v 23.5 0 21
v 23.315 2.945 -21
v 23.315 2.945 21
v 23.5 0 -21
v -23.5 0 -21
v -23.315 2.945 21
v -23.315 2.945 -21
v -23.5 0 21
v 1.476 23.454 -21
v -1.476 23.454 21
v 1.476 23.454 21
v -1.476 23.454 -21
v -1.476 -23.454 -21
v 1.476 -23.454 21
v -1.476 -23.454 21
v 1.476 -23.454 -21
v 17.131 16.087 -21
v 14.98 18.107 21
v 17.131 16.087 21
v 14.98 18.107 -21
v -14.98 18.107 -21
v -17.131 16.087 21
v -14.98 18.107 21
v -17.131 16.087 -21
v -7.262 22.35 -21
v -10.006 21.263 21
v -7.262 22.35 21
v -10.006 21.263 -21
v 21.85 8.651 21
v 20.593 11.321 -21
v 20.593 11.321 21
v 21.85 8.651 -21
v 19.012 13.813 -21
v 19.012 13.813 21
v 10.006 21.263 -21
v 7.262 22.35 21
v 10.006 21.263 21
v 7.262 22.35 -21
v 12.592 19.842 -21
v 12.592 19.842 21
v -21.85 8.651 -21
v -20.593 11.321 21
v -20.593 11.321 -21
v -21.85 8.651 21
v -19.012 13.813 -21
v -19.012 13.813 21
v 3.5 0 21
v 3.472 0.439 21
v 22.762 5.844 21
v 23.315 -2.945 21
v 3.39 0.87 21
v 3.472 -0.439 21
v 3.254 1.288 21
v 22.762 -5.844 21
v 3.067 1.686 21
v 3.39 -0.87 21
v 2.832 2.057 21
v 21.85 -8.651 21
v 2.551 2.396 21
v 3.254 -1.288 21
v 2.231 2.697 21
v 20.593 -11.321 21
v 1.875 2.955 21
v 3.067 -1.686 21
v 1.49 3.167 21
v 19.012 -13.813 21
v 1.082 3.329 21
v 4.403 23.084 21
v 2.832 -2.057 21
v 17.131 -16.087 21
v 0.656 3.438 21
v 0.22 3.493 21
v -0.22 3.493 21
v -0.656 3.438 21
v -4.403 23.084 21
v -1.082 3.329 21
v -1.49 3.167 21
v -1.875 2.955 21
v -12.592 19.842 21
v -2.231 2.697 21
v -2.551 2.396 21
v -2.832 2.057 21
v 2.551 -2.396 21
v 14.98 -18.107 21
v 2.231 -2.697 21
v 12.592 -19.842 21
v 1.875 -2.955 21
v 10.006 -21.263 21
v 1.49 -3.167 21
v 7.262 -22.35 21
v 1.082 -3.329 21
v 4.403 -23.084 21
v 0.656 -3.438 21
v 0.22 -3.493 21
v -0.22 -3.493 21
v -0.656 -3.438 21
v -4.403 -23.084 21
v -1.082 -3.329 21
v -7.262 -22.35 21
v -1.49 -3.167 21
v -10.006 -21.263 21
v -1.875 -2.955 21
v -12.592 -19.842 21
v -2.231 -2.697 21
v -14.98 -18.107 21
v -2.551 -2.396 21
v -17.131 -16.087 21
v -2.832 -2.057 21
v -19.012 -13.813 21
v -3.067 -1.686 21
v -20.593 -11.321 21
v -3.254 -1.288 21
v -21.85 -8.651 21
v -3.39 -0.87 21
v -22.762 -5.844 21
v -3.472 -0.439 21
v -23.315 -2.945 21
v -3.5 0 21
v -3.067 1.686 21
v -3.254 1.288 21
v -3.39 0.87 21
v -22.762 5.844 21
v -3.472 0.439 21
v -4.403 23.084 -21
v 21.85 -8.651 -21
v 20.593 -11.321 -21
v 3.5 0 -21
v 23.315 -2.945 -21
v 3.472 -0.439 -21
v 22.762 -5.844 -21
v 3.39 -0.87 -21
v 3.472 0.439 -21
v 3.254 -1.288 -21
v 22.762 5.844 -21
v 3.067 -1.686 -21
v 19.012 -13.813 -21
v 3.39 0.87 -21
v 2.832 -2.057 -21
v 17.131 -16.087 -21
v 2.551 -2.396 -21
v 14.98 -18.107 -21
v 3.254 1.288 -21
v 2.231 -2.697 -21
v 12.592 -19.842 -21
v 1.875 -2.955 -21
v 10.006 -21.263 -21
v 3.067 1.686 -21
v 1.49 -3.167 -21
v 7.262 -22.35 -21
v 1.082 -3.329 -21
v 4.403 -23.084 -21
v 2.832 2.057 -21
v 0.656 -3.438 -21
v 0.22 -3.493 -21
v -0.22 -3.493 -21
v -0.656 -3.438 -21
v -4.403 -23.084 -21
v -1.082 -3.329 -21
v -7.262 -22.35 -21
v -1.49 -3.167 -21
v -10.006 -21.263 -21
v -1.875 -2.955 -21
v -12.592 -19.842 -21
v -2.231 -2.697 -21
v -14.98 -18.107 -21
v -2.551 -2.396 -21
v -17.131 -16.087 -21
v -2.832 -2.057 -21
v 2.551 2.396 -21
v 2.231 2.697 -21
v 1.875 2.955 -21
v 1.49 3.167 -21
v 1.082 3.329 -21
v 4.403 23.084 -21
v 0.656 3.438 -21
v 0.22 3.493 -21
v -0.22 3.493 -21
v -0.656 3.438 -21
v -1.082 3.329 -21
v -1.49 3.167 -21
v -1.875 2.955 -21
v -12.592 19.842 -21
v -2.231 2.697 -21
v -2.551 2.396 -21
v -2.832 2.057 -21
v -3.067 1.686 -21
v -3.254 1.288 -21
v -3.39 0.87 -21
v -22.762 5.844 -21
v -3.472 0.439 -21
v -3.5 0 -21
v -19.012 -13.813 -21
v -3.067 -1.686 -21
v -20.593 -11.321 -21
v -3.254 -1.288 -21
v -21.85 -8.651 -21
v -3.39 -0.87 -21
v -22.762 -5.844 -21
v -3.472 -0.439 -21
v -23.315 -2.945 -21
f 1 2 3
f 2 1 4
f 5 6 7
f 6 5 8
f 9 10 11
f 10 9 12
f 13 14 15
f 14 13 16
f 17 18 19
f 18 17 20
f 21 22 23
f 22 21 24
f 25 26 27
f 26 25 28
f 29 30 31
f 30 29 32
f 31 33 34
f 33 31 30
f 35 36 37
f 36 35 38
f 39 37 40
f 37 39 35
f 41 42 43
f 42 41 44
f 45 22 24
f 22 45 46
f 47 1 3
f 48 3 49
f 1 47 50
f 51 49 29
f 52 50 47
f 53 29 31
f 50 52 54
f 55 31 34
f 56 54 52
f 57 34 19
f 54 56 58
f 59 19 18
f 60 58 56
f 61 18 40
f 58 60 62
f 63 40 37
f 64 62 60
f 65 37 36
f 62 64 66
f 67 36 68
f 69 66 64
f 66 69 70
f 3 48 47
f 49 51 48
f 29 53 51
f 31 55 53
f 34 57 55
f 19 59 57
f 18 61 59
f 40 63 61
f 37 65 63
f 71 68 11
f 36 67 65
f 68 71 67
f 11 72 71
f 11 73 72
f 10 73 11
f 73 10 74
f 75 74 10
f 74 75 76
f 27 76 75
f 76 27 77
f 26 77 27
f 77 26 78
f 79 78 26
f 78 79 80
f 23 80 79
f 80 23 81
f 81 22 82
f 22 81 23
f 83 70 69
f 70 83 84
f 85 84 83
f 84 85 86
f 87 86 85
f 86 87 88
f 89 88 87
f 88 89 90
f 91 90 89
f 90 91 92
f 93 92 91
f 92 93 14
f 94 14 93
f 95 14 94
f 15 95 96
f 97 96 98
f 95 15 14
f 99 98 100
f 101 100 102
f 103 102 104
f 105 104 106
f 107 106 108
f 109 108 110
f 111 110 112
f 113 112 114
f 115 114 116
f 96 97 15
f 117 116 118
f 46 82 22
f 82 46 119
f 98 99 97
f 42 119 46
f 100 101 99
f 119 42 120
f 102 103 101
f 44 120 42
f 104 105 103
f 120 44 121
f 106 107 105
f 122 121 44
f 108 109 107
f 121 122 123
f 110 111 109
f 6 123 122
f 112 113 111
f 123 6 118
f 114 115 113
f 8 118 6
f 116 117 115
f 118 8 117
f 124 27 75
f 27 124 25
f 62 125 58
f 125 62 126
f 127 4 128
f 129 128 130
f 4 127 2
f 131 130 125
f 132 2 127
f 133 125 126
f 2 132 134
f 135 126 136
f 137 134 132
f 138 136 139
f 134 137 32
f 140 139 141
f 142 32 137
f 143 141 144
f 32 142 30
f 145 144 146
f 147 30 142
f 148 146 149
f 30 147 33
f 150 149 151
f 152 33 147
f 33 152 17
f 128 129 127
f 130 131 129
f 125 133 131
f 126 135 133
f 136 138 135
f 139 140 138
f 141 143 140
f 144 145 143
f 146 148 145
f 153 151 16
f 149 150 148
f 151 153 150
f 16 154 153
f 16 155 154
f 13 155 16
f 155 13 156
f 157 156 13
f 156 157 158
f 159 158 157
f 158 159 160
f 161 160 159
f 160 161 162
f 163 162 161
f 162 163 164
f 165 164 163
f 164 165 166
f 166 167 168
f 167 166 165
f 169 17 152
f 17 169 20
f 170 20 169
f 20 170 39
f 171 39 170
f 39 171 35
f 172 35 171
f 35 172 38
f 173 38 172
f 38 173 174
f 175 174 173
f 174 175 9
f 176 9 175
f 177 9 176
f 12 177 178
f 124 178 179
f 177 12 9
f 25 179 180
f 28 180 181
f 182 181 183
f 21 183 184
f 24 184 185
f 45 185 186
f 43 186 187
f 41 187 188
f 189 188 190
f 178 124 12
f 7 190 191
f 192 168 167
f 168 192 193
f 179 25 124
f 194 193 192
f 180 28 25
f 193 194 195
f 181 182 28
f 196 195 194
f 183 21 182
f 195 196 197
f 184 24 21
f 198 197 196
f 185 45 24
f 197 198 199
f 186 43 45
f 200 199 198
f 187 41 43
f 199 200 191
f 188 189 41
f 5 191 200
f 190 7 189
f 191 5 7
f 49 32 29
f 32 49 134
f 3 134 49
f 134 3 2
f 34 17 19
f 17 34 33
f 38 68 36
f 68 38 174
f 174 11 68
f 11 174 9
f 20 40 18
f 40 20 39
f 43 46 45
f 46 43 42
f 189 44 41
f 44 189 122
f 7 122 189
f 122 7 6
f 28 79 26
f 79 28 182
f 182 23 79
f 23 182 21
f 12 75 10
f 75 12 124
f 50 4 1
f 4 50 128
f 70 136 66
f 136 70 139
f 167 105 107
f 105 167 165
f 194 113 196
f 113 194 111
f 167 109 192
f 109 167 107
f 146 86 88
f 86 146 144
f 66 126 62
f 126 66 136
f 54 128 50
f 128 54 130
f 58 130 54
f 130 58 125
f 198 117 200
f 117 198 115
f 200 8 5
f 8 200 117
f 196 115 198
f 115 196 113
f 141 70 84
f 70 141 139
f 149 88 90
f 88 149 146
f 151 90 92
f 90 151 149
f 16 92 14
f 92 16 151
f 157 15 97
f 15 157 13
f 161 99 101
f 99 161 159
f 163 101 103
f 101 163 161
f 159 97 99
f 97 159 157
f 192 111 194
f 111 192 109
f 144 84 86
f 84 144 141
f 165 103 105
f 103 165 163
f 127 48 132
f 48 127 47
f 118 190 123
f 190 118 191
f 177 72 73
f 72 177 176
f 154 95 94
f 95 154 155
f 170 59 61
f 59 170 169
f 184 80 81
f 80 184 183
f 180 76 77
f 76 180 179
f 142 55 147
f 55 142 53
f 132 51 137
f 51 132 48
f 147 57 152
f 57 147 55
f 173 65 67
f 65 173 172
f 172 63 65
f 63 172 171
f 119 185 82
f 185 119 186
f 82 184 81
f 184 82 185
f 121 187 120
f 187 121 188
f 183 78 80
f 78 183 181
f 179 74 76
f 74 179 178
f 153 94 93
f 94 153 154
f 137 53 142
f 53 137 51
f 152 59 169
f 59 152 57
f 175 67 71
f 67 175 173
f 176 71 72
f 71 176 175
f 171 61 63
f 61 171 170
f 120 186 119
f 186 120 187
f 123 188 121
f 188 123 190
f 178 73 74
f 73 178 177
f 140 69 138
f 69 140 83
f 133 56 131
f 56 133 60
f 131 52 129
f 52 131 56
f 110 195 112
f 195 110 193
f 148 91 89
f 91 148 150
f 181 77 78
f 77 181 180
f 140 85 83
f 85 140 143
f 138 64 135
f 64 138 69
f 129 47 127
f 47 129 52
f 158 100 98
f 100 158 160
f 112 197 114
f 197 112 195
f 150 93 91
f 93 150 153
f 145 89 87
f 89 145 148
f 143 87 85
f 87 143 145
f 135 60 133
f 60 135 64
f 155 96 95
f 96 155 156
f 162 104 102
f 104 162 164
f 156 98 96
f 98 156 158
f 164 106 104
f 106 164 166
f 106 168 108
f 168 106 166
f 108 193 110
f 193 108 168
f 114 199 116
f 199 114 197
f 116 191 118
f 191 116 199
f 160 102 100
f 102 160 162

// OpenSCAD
$fn = 50;


difference() {
	union() {
		translate(v = [0, 0, -21.0000000000]) {
			cylinder(h = 42, r = 23.5000000000);
		}
	}
	union() {
		translate(v = [0, 0, -100.0000000000]) {
			cylinder(h = 200, r = 3.5000000000);
		}
	}
}
